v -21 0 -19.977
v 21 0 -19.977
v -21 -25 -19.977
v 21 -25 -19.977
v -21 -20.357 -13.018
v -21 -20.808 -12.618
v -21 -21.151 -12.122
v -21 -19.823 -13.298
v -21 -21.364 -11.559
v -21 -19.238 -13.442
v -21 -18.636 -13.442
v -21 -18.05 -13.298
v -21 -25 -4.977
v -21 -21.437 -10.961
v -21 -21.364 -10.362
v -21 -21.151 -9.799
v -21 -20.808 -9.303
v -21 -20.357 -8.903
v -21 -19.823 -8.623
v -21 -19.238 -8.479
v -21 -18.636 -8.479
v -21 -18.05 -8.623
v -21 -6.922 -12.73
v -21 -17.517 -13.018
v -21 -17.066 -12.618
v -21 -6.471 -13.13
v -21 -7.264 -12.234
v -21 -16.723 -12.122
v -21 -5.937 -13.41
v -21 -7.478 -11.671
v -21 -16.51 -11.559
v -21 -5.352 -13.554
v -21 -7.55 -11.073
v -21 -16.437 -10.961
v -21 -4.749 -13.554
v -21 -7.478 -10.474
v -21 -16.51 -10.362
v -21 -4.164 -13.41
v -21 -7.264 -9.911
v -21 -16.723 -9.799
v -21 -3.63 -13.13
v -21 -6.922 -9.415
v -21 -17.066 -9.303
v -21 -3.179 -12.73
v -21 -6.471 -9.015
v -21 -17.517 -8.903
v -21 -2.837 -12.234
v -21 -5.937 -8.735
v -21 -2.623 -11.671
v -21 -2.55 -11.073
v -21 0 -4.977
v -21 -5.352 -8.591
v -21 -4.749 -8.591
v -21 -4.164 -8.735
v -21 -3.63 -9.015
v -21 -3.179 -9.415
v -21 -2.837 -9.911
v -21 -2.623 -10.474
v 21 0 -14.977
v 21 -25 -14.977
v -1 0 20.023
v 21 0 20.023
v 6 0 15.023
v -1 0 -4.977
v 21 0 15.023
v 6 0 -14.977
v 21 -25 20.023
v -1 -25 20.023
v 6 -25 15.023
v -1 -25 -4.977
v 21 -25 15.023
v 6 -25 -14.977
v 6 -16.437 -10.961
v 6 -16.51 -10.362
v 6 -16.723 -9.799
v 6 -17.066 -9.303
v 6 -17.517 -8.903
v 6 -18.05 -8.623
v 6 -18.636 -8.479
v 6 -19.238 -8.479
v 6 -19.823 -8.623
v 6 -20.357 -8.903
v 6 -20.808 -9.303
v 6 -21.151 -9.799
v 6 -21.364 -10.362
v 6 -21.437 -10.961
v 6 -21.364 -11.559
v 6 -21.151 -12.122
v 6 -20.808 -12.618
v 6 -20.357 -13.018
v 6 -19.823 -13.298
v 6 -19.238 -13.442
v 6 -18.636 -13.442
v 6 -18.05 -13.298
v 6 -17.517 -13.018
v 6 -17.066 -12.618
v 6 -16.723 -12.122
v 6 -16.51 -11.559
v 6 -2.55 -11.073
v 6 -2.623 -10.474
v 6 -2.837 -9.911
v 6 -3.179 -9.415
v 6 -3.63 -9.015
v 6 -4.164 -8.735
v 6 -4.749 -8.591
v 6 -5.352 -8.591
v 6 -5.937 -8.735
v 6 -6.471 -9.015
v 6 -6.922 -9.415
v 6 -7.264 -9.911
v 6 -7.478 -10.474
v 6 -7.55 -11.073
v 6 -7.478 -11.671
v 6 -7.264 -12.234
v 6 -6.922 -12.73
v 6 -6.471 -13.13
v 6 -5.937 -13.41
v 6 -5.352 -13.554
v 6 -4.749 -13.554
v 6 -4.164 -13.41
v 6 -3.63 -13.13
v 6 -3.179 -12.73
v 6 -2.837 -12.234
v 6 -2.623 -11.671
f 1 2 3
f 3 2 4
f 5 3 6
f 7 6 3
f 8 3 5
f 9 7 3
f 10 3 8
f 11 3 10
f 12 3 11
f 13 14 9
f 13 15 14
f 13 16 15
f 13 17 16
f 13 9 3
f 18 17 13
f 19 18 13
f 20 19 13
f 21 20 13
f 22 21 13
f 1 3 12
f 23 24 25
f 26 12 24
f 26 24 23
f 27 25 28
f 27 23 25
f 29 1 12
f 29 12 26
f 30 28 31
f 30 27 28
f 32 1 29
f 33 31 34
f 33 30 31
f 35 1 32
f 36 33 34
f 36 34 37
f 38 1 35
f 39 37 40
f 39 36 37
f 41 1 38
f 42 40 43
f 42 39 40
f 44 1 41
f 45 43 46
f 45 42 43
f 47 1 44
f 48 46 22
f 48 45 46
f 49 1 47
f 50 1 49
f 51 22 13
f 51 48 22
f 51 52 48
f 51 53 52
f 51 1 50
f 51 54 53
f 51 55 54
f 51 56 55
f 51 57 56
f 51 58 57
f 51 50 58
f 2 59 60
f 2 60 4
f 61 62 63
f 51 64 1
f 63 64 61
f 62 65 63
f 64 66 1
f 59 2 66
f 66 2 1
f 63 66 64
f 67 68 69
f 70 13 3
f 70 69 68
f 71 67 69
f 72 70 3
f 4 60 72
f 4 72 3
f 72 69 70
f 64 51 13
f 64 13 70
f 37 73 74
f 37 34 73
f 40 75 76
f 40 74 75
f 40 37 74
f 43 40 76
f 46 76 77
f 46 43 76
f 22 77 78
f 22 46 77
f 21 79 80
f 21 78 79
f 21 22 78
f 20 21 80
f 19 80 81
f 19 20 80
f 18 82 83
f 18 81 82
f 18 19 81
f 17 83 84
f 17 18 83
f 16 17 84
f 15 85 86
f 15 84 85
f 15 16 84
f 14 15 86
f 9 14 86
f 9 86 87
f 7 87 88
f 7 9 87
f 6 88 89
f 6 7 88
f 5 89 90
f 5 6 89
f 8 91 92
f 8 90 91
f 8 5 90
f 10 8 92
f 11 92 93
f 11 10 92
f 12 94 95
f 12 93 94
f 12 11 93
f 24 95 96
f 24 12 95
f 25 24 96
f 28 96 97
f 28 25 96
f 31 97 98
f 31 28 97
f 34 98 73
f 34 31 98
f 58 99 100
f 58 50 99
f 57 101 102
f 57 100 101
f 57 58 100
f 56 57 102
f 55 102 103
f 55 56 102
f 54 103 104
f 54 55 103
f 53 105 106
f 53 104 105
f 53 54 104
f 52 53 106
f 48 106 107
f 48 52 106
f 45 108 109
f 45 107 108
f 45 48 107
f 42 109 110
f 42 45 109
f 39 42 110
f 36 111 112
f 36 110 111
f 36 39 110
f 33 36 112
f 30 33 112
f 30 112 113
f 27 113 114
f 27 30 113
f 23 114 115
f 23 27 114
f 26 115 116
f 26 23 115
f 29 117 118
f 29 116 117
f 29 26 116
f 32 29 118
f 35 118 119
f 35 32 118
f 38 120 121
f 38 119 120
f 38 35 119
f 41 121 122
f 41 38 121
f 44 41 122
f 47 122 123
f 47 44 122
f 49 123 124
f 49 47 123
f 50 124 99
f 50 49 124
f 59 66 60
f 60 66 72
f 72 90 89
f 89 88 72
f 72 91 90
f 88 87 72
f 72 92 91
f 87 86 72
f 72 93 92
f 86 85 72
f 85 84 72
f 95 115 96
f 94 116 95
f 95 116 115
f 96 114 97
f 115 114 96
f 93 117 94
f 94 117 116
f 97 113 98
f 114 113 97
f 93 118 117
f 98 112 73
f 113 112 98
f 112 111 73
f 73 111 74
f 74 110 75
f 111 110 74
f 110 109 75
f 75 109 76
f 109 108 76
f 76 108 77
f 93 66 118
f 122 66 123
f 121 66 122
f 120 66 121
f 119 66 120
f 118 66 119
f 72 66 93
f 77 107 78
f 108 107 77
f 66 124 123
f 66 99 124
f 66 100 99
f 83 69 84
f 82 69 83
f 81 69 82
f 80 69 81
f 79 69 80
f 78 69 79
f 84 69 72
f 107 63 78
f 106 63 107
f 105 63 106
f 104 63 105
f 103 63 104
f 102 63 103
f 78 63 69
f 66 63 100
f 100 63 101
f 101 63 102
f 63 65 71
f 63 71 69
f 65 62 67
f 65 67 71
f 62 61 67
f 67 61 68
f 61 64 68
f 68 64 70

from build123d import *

# Parameters (mm, degrees)
PAD_DEPTH   = 25
SKETCH001_R = 2.5
HOLE_DEPTH  = 45


with BuildPart() as part:
    # Sketch → Pad (new body)
    with BuildSketch(Plane.XZ):
        Polygon((-21, -19.977354), (21, -19.977354), (21, -14.977354), (6, -14.977354), (6, 15.022646), (21, 15.022646), (21, 20.022646), (-1, 20.022646), (-1, -4.977354), (-21, -4.977354), align=None)
    extrude(amount=PAD_DEPTH)

    # Sketch001 (on Face6 of Pad) → Hole (cut)
    with BuildSketch(Plane(origin=(21, 0, 0), x_dir=(0, 0, 1), z_dir=(1, 0, 0))):
        with Locations((-10.960537, 18.936941)):
            Circle(SKETCH001_R)
        with Locations((-11.072524, 5.050469)):
            Circle(SKETCH001_R)
    extrude(amount=-HOLE_DEPTH, mode=Mode.SUBTRACT)


solid = part.part
